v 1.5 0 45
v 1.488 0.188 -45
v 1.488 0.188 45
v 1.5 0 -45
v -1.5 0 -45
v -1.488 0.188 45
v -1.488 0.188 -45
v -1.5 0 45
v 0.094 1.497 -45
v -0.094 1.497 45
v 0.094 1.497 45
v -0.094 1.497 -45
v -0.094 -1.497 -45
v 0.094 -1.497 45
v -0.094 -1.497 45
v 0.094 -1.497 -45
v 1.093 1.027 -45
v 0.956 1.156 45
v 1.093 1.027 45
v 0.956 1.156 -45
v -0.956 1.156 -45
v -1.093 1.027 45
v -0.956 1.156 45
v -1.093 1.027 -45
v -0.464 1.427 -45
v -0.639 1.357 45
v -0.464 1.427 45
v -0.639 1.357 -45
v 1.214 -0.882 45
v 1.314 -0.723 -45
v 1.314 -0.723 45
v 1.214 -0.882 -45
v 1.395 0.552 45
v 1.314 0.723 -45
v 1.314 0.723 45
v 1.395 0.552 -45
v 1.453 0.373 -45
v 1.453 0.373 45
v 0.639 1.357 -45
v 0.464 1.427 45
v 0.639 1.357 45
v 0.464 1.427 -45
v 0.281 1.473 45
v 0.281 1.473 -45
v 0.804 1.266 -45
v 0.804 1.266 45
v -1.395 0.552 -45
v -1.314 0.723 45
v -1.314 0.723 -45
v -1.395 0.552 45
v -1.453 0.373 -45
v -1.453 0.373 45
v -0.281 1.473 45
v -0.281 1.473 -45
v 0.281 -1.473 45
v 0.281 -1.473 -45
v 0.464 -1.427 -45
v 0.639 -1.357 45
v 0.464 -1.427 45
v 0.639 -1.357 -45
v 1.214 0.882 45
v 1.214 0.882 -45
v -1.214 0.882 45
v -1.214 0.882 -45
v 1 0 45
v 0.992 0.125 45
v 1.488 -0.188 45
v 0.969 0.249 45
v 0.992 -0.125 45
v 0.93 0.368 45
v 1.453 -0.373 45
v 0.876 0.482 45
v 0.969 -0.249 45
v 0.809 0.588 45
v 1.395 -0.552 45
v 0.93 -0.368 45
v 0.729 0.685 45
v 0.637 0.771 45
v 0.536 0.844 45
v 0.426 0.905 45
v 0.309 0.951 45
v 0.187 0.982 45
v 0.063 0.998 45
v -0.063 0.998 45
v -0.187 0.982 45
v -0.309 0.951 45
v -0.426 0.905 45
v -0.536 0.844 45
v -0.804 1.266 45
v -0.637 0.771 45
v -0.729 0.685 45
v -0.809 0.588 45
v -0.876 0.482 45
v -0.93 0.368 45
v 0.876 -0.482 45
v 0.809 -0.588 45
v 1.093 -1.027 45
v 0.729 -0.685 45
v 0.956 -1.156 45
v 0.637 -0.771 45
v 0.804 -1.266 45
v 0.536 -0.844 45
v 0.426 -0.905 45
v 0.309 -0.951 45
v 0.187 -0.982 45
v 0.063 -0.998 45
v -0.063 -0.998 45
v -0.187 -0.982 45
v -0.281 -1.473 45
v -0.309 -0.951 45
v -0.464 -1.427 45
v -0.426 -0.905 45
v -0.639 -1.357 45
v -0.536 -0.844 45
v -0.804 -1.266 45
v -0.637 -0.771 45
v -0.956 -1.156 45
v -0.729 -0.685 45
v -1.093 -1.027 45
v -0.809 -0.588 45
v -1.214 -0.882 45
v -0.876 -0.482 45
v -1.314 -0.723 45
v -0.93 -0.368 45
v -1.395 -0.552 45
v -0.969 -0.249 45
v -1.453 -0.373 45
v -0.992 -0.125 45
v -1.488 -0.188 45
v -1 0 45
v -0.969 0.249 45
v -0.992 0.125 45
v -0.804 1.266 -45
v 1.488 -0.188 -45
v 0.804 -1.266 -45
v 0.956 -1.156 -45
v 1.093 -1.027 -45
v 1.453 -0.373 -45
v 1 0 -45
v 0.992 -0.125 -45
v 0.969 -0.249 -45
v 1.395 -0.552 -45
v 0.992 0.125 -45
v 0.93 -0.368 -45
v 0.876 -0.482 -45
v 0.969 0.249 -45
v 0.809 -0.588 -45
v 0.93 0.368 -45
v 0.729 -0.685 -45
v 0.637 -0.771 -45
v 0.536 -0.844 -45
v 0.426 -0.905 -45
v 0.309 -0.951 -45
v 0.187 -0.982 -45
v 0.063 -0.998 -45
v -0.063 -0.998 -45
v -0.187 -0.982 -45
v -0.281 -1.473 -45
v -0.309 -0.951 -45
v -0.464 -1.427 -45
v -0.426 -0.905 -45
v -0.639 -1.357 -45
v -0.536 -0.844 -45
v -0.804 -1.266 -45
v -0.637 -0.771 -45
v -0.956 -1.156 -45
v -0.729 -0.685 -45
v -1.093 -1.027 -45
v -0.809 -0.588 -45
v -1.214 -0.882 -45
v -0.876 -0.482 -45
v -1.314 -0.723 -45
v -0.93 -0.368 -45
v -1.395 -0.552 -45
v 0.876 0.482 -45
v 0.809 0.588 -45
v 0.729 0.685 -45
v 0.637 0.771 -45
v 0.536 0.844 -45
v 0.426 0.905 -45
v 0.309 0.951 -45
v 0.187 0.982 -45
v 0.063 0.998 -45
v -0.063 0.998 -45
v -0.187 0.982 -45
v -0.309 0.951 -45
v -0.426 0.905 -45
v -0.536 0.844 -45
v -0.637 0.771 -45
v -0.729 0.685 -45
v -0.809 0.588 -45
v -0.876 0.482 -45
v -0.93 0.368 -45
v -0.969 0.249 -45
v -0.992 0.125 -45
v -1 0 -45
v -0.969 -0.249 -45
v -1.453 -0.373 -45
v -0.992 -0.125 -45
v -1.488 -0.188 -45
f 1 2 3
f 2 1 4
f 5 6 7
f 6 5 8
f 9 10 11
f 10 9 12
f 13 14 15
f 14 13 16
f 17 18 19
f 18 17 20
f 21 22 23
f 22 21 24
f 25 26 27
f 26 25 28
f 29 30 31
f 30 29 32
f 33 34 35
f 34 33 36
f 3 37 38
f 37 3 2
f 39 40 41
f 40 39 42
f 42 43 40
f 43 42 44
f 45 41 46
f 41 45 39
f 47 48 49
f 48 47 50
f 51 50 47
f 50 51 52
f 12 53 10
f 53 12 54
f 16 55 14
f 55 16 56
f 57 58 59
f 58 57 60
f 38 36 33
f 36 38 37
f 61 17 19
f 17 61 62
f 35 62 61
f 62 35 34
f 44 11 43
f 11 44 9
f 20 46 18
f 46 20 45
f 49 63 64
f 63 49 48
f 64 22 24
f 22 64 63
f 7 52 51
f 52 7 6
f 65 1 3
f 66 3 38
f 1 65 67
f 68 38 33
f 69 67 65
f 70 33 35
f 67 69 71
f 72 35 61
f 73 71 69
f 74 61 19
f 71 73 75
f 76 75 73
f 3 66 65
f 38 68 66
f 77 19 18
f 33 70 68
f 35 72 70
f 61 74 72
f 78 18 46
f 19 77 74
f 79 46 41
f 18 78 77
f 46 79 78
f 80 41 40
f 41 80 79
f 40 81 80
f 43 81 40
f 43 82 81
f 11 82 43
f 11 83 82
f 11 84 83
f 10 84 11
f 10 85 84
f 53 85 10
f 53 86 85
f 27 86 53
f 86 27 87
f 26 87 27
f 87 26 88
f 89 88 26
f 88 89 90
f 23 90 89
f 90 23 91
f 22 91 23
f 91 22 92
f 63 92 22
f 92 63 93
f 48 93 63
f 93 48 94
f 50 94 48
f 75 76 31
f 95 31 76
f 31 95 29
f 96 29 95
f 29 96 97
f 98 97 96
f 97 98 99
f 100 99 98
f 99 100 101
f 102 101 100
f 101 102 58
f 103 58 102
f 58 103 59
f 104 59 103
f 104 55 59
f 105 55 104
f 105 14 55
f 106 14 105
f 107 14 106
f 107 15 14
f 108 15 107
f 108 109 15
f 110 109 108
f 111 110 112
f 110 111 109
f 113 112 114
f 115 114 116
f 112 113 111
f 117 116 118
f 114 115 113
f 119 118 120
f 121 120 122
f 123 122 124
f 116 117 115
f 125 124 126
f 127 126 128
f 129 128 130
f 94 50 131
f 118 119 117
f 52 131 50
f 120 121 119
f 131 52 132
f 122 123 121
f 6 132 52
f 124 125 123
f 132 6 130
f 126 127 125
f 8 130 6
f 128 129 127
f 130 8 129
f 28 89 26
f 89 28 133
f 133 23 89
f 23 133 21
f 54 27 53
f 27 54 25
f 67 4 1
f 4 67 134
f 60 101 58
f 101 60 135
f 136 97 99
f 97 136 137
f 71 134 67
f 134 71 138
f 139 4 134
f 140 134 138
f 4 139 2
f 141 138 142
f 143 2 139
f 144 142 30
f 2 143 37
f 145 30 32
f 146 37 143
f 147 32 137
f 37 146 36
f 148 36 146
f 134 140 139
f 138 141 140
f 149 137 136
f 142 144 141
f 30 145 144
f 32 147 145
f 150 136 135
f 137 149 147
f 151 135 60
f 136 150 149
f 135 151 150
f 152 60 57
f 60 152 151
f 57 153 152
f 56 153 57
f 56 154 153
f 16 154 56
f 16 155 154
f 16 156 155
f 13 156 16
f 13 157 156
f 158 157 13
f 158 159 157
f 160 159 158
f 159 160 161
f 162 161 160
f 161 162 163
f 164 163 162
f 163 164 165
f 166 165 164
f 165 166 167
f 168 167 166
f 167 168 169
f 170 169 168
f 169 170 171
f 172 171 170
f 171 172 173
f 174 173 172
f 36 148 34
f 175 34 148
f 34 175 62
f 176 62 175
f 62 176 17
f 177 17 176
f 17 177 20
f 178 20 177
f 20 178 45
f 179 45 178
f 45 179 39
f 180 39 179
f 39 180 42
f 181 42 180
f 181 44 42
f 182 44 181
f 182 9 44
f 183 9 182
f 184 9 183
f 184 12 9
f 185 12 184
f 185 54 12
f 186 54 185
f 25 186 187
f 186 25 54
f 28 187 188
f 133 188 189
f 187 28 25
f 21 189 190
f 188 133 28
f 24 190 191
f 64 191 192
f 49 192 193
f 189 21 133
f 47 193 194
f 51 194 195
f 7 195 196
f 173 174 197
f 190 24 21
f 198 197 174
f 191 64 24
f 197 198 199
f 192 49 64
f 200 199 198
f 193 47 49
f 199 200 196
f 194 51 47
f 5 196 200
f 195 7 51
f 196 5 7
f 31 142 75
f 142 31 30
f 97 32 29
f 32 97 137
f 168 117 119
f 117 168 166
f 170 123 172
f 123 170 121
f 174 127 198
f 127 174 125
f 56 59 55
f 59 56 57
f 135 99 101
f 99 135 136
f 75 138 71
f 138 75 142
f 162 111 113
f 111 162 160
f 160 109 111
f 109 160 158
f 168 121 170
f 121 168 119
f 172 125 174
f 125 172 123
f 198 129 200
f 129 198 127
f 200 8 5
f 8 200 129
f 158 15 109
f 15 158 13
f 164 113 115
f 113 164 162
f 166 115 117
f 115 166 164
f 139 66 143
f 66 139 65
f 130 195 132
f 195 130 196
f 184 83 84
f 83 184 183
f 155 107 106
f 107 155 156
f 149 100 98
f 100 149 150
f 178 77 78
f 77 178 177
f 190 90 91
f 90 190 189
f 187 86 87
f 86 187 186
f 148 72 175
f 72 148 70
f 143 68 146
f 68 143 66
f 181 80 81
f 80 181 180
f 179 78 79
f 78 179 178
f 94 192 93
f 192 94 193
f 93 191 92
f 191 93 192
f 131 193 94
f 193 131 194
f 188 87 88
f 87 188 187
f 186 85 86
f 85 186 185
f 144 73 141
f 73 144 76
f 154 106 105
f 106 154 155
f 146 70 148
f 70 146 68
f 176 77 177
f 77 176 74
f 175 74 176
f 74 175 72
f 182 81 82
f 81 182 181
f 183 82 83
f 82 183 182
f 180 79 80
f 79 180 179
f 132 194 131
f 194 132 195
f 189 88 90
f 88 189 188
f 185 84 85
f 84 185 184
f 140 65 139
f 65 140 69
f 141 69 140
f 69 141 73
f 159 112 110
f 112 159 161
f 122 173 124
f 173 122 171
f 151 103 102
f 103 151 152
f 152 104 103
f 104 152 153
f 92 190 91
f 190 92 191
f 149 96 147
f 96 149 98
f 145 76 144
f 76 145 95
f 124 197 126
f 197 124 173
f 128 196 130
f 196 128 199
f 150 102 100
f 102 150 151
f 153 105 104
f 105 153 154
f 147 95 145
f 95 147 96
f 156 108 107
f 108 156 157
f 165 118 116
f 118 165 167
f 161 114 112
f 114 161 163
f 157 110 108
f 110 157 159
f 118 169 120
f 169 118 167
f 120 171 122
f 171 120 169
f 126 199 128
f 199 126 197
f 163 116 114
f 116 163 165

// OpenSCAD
$fn = 50;


difference() {
	union() {
		translate(v = [0, 0, -45.0000000000]) {
			cylinder(h = 90, r = 1.5000000000);
		}
	}
	union() {
		translate(v = [0, 0, -100.0000000000]) {
			cylinder(h = 200, r = 1.0000000000);
		}
	}
}
